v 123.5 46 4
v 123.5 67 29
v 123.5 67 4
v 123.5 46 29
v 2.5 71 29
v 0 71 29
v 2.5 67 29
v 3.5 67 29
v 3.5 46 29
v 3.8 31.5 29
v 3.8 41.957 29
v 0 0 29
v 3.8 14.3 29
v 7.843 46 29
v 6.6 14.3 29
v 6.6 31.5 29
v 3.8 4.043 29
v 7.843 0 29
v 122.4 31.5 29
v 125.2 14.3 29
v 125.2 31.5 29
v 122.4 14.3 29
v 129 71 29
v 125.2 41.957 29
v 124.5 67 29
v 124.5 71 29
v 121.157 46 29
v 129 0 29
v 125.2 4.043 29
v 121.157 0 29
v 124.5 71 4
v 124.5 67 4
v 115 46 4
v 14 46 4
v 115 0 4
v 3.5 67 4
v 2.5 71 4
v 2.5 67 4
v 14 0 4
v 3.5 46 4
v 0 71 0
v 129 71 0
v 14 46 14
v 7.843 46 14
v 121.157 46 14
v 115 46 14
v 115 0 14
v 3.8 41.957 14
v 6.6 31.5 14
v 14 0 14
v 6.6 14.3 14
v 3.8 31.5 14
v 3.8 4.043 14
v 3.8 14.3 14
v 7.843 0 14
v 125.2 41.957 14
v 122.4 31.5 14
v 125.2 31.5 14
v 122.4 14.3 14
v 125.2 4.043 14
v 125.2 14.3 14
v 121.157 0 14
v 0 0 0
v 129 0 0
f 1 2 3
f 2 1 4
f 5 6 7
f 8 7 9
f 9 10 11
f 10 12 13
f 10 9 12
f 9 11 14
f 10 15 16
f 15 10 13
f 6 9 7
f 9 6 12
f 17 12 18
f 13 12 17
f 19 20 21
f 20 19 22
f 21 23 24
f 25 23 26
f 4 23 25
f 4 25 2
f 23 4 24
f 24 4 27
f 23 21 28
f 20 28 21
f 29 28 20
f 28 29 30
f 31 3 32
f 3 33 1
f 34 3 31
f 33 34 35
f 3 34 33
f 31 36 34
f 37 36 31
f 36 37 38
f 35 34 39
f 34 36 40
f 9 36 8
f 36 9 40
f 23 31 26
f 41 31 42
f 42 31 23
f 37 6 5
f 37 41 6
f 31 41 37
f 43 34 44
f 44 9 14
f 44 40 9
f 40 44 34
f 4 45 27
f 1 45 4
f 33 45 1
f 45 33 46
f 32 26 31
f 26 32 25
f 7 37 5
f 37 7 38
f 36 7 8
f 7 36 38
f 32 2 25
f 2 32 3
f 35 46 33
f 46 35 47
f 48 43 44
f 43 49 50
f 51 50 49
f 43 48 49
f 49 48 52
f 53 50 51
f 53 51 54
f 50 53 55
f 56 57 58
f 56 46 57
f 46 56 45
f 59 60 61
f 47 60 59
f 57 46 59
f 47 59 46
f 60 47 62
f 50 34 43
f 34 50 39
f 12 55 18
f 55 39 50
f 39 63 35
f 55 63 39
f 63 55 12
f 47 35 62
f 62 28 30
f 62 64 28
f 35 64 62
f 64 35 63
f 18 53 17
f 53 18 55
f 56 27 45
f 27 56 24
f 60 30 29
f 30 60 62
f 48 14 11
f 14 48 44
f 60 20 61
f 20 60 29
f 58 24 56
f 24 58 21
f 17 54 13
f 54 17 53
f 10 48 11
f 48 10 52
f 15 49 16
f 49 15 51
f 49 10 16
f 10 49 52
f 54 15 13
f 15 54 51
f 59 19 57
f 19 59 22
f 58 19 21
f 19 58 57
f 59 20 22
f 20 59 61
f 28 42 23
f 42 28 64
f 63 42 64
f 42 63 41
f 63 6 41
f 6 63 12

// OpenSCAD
wall = 4;
gap = 0.2;
cooler_x = 121;
cooler_y = 46;
cooler_z = 25;
cooler_45 = 6;
cooler_gap_x = 2.6;
cooler_gap_y = 17;
cooler_pins_offset_x = 10;
cooler_pins_z = 10;
fan_x = 120;
fan_y = 25;
fan_z = 25;
fan_hook_x = 1;
fan_hook_y = 4;
minkovsky_offset=(sqrt(pow(cooler_45,2)+pow(cooler_45,2)))/2;

cooler_case();

module cooler_case()
{
    difference()
    {
        cube([cooler_x+2*wall,cooler_y+fan_y,cooler_z+wall]);
        translate([wall,0,wall])
        {
            cooler();
        }
        translate([wall-abs(cooler_x-fan_x)/2,cooler_y,wall])
        {
            fan();
        }
    }
}

module fan()
{
    cube([fan_x,fan_y,fan_z]);
    translate([-fan_hook_x,fan_y-fan_hook_y,0])
    {
        cube([fan_x+2*fan_hook_x,fan_hook_y,fan_z]);
    }
}

module cooler()
{
    difference()
    {
        cooler_block();
        cooler_cutout();
    }
}

module cooler_block()
{
    // pins
    translate([cooler_pins_offset_x,0,0])
    {
        cube([cooler_x-2*cooler_pins_offset_x,cooler_y,cooler_pins_z]);
    }
    // cooler    
    translate([minkovsky_offset-gap,-gap,cooler_pins_z])
    {
        minkowski()
        {
            cube([cooler_x-2*minkovsky_offset+2*gap,cooler_y-2*minkovsky_offset+2*gap,(cooler_z-cooler_pins_z)/2]);
            rotate([0,0,45])
            {
                cube([cooler_45,cooler_45,(cooler_z-cooler_pins_z)/2]);
            }
        }
    }
}

module cooler_cutout()
{
    for(i=[-gap,cooler_x-cooler_gap_x])
    {
        translate([i,(cooler_y-cooler_gap_y)/2-gap,0])
        {
            cube([cooler_gap_x+gap,cooler_gap_y+gap,cooler_z]);
        }
    }
}
